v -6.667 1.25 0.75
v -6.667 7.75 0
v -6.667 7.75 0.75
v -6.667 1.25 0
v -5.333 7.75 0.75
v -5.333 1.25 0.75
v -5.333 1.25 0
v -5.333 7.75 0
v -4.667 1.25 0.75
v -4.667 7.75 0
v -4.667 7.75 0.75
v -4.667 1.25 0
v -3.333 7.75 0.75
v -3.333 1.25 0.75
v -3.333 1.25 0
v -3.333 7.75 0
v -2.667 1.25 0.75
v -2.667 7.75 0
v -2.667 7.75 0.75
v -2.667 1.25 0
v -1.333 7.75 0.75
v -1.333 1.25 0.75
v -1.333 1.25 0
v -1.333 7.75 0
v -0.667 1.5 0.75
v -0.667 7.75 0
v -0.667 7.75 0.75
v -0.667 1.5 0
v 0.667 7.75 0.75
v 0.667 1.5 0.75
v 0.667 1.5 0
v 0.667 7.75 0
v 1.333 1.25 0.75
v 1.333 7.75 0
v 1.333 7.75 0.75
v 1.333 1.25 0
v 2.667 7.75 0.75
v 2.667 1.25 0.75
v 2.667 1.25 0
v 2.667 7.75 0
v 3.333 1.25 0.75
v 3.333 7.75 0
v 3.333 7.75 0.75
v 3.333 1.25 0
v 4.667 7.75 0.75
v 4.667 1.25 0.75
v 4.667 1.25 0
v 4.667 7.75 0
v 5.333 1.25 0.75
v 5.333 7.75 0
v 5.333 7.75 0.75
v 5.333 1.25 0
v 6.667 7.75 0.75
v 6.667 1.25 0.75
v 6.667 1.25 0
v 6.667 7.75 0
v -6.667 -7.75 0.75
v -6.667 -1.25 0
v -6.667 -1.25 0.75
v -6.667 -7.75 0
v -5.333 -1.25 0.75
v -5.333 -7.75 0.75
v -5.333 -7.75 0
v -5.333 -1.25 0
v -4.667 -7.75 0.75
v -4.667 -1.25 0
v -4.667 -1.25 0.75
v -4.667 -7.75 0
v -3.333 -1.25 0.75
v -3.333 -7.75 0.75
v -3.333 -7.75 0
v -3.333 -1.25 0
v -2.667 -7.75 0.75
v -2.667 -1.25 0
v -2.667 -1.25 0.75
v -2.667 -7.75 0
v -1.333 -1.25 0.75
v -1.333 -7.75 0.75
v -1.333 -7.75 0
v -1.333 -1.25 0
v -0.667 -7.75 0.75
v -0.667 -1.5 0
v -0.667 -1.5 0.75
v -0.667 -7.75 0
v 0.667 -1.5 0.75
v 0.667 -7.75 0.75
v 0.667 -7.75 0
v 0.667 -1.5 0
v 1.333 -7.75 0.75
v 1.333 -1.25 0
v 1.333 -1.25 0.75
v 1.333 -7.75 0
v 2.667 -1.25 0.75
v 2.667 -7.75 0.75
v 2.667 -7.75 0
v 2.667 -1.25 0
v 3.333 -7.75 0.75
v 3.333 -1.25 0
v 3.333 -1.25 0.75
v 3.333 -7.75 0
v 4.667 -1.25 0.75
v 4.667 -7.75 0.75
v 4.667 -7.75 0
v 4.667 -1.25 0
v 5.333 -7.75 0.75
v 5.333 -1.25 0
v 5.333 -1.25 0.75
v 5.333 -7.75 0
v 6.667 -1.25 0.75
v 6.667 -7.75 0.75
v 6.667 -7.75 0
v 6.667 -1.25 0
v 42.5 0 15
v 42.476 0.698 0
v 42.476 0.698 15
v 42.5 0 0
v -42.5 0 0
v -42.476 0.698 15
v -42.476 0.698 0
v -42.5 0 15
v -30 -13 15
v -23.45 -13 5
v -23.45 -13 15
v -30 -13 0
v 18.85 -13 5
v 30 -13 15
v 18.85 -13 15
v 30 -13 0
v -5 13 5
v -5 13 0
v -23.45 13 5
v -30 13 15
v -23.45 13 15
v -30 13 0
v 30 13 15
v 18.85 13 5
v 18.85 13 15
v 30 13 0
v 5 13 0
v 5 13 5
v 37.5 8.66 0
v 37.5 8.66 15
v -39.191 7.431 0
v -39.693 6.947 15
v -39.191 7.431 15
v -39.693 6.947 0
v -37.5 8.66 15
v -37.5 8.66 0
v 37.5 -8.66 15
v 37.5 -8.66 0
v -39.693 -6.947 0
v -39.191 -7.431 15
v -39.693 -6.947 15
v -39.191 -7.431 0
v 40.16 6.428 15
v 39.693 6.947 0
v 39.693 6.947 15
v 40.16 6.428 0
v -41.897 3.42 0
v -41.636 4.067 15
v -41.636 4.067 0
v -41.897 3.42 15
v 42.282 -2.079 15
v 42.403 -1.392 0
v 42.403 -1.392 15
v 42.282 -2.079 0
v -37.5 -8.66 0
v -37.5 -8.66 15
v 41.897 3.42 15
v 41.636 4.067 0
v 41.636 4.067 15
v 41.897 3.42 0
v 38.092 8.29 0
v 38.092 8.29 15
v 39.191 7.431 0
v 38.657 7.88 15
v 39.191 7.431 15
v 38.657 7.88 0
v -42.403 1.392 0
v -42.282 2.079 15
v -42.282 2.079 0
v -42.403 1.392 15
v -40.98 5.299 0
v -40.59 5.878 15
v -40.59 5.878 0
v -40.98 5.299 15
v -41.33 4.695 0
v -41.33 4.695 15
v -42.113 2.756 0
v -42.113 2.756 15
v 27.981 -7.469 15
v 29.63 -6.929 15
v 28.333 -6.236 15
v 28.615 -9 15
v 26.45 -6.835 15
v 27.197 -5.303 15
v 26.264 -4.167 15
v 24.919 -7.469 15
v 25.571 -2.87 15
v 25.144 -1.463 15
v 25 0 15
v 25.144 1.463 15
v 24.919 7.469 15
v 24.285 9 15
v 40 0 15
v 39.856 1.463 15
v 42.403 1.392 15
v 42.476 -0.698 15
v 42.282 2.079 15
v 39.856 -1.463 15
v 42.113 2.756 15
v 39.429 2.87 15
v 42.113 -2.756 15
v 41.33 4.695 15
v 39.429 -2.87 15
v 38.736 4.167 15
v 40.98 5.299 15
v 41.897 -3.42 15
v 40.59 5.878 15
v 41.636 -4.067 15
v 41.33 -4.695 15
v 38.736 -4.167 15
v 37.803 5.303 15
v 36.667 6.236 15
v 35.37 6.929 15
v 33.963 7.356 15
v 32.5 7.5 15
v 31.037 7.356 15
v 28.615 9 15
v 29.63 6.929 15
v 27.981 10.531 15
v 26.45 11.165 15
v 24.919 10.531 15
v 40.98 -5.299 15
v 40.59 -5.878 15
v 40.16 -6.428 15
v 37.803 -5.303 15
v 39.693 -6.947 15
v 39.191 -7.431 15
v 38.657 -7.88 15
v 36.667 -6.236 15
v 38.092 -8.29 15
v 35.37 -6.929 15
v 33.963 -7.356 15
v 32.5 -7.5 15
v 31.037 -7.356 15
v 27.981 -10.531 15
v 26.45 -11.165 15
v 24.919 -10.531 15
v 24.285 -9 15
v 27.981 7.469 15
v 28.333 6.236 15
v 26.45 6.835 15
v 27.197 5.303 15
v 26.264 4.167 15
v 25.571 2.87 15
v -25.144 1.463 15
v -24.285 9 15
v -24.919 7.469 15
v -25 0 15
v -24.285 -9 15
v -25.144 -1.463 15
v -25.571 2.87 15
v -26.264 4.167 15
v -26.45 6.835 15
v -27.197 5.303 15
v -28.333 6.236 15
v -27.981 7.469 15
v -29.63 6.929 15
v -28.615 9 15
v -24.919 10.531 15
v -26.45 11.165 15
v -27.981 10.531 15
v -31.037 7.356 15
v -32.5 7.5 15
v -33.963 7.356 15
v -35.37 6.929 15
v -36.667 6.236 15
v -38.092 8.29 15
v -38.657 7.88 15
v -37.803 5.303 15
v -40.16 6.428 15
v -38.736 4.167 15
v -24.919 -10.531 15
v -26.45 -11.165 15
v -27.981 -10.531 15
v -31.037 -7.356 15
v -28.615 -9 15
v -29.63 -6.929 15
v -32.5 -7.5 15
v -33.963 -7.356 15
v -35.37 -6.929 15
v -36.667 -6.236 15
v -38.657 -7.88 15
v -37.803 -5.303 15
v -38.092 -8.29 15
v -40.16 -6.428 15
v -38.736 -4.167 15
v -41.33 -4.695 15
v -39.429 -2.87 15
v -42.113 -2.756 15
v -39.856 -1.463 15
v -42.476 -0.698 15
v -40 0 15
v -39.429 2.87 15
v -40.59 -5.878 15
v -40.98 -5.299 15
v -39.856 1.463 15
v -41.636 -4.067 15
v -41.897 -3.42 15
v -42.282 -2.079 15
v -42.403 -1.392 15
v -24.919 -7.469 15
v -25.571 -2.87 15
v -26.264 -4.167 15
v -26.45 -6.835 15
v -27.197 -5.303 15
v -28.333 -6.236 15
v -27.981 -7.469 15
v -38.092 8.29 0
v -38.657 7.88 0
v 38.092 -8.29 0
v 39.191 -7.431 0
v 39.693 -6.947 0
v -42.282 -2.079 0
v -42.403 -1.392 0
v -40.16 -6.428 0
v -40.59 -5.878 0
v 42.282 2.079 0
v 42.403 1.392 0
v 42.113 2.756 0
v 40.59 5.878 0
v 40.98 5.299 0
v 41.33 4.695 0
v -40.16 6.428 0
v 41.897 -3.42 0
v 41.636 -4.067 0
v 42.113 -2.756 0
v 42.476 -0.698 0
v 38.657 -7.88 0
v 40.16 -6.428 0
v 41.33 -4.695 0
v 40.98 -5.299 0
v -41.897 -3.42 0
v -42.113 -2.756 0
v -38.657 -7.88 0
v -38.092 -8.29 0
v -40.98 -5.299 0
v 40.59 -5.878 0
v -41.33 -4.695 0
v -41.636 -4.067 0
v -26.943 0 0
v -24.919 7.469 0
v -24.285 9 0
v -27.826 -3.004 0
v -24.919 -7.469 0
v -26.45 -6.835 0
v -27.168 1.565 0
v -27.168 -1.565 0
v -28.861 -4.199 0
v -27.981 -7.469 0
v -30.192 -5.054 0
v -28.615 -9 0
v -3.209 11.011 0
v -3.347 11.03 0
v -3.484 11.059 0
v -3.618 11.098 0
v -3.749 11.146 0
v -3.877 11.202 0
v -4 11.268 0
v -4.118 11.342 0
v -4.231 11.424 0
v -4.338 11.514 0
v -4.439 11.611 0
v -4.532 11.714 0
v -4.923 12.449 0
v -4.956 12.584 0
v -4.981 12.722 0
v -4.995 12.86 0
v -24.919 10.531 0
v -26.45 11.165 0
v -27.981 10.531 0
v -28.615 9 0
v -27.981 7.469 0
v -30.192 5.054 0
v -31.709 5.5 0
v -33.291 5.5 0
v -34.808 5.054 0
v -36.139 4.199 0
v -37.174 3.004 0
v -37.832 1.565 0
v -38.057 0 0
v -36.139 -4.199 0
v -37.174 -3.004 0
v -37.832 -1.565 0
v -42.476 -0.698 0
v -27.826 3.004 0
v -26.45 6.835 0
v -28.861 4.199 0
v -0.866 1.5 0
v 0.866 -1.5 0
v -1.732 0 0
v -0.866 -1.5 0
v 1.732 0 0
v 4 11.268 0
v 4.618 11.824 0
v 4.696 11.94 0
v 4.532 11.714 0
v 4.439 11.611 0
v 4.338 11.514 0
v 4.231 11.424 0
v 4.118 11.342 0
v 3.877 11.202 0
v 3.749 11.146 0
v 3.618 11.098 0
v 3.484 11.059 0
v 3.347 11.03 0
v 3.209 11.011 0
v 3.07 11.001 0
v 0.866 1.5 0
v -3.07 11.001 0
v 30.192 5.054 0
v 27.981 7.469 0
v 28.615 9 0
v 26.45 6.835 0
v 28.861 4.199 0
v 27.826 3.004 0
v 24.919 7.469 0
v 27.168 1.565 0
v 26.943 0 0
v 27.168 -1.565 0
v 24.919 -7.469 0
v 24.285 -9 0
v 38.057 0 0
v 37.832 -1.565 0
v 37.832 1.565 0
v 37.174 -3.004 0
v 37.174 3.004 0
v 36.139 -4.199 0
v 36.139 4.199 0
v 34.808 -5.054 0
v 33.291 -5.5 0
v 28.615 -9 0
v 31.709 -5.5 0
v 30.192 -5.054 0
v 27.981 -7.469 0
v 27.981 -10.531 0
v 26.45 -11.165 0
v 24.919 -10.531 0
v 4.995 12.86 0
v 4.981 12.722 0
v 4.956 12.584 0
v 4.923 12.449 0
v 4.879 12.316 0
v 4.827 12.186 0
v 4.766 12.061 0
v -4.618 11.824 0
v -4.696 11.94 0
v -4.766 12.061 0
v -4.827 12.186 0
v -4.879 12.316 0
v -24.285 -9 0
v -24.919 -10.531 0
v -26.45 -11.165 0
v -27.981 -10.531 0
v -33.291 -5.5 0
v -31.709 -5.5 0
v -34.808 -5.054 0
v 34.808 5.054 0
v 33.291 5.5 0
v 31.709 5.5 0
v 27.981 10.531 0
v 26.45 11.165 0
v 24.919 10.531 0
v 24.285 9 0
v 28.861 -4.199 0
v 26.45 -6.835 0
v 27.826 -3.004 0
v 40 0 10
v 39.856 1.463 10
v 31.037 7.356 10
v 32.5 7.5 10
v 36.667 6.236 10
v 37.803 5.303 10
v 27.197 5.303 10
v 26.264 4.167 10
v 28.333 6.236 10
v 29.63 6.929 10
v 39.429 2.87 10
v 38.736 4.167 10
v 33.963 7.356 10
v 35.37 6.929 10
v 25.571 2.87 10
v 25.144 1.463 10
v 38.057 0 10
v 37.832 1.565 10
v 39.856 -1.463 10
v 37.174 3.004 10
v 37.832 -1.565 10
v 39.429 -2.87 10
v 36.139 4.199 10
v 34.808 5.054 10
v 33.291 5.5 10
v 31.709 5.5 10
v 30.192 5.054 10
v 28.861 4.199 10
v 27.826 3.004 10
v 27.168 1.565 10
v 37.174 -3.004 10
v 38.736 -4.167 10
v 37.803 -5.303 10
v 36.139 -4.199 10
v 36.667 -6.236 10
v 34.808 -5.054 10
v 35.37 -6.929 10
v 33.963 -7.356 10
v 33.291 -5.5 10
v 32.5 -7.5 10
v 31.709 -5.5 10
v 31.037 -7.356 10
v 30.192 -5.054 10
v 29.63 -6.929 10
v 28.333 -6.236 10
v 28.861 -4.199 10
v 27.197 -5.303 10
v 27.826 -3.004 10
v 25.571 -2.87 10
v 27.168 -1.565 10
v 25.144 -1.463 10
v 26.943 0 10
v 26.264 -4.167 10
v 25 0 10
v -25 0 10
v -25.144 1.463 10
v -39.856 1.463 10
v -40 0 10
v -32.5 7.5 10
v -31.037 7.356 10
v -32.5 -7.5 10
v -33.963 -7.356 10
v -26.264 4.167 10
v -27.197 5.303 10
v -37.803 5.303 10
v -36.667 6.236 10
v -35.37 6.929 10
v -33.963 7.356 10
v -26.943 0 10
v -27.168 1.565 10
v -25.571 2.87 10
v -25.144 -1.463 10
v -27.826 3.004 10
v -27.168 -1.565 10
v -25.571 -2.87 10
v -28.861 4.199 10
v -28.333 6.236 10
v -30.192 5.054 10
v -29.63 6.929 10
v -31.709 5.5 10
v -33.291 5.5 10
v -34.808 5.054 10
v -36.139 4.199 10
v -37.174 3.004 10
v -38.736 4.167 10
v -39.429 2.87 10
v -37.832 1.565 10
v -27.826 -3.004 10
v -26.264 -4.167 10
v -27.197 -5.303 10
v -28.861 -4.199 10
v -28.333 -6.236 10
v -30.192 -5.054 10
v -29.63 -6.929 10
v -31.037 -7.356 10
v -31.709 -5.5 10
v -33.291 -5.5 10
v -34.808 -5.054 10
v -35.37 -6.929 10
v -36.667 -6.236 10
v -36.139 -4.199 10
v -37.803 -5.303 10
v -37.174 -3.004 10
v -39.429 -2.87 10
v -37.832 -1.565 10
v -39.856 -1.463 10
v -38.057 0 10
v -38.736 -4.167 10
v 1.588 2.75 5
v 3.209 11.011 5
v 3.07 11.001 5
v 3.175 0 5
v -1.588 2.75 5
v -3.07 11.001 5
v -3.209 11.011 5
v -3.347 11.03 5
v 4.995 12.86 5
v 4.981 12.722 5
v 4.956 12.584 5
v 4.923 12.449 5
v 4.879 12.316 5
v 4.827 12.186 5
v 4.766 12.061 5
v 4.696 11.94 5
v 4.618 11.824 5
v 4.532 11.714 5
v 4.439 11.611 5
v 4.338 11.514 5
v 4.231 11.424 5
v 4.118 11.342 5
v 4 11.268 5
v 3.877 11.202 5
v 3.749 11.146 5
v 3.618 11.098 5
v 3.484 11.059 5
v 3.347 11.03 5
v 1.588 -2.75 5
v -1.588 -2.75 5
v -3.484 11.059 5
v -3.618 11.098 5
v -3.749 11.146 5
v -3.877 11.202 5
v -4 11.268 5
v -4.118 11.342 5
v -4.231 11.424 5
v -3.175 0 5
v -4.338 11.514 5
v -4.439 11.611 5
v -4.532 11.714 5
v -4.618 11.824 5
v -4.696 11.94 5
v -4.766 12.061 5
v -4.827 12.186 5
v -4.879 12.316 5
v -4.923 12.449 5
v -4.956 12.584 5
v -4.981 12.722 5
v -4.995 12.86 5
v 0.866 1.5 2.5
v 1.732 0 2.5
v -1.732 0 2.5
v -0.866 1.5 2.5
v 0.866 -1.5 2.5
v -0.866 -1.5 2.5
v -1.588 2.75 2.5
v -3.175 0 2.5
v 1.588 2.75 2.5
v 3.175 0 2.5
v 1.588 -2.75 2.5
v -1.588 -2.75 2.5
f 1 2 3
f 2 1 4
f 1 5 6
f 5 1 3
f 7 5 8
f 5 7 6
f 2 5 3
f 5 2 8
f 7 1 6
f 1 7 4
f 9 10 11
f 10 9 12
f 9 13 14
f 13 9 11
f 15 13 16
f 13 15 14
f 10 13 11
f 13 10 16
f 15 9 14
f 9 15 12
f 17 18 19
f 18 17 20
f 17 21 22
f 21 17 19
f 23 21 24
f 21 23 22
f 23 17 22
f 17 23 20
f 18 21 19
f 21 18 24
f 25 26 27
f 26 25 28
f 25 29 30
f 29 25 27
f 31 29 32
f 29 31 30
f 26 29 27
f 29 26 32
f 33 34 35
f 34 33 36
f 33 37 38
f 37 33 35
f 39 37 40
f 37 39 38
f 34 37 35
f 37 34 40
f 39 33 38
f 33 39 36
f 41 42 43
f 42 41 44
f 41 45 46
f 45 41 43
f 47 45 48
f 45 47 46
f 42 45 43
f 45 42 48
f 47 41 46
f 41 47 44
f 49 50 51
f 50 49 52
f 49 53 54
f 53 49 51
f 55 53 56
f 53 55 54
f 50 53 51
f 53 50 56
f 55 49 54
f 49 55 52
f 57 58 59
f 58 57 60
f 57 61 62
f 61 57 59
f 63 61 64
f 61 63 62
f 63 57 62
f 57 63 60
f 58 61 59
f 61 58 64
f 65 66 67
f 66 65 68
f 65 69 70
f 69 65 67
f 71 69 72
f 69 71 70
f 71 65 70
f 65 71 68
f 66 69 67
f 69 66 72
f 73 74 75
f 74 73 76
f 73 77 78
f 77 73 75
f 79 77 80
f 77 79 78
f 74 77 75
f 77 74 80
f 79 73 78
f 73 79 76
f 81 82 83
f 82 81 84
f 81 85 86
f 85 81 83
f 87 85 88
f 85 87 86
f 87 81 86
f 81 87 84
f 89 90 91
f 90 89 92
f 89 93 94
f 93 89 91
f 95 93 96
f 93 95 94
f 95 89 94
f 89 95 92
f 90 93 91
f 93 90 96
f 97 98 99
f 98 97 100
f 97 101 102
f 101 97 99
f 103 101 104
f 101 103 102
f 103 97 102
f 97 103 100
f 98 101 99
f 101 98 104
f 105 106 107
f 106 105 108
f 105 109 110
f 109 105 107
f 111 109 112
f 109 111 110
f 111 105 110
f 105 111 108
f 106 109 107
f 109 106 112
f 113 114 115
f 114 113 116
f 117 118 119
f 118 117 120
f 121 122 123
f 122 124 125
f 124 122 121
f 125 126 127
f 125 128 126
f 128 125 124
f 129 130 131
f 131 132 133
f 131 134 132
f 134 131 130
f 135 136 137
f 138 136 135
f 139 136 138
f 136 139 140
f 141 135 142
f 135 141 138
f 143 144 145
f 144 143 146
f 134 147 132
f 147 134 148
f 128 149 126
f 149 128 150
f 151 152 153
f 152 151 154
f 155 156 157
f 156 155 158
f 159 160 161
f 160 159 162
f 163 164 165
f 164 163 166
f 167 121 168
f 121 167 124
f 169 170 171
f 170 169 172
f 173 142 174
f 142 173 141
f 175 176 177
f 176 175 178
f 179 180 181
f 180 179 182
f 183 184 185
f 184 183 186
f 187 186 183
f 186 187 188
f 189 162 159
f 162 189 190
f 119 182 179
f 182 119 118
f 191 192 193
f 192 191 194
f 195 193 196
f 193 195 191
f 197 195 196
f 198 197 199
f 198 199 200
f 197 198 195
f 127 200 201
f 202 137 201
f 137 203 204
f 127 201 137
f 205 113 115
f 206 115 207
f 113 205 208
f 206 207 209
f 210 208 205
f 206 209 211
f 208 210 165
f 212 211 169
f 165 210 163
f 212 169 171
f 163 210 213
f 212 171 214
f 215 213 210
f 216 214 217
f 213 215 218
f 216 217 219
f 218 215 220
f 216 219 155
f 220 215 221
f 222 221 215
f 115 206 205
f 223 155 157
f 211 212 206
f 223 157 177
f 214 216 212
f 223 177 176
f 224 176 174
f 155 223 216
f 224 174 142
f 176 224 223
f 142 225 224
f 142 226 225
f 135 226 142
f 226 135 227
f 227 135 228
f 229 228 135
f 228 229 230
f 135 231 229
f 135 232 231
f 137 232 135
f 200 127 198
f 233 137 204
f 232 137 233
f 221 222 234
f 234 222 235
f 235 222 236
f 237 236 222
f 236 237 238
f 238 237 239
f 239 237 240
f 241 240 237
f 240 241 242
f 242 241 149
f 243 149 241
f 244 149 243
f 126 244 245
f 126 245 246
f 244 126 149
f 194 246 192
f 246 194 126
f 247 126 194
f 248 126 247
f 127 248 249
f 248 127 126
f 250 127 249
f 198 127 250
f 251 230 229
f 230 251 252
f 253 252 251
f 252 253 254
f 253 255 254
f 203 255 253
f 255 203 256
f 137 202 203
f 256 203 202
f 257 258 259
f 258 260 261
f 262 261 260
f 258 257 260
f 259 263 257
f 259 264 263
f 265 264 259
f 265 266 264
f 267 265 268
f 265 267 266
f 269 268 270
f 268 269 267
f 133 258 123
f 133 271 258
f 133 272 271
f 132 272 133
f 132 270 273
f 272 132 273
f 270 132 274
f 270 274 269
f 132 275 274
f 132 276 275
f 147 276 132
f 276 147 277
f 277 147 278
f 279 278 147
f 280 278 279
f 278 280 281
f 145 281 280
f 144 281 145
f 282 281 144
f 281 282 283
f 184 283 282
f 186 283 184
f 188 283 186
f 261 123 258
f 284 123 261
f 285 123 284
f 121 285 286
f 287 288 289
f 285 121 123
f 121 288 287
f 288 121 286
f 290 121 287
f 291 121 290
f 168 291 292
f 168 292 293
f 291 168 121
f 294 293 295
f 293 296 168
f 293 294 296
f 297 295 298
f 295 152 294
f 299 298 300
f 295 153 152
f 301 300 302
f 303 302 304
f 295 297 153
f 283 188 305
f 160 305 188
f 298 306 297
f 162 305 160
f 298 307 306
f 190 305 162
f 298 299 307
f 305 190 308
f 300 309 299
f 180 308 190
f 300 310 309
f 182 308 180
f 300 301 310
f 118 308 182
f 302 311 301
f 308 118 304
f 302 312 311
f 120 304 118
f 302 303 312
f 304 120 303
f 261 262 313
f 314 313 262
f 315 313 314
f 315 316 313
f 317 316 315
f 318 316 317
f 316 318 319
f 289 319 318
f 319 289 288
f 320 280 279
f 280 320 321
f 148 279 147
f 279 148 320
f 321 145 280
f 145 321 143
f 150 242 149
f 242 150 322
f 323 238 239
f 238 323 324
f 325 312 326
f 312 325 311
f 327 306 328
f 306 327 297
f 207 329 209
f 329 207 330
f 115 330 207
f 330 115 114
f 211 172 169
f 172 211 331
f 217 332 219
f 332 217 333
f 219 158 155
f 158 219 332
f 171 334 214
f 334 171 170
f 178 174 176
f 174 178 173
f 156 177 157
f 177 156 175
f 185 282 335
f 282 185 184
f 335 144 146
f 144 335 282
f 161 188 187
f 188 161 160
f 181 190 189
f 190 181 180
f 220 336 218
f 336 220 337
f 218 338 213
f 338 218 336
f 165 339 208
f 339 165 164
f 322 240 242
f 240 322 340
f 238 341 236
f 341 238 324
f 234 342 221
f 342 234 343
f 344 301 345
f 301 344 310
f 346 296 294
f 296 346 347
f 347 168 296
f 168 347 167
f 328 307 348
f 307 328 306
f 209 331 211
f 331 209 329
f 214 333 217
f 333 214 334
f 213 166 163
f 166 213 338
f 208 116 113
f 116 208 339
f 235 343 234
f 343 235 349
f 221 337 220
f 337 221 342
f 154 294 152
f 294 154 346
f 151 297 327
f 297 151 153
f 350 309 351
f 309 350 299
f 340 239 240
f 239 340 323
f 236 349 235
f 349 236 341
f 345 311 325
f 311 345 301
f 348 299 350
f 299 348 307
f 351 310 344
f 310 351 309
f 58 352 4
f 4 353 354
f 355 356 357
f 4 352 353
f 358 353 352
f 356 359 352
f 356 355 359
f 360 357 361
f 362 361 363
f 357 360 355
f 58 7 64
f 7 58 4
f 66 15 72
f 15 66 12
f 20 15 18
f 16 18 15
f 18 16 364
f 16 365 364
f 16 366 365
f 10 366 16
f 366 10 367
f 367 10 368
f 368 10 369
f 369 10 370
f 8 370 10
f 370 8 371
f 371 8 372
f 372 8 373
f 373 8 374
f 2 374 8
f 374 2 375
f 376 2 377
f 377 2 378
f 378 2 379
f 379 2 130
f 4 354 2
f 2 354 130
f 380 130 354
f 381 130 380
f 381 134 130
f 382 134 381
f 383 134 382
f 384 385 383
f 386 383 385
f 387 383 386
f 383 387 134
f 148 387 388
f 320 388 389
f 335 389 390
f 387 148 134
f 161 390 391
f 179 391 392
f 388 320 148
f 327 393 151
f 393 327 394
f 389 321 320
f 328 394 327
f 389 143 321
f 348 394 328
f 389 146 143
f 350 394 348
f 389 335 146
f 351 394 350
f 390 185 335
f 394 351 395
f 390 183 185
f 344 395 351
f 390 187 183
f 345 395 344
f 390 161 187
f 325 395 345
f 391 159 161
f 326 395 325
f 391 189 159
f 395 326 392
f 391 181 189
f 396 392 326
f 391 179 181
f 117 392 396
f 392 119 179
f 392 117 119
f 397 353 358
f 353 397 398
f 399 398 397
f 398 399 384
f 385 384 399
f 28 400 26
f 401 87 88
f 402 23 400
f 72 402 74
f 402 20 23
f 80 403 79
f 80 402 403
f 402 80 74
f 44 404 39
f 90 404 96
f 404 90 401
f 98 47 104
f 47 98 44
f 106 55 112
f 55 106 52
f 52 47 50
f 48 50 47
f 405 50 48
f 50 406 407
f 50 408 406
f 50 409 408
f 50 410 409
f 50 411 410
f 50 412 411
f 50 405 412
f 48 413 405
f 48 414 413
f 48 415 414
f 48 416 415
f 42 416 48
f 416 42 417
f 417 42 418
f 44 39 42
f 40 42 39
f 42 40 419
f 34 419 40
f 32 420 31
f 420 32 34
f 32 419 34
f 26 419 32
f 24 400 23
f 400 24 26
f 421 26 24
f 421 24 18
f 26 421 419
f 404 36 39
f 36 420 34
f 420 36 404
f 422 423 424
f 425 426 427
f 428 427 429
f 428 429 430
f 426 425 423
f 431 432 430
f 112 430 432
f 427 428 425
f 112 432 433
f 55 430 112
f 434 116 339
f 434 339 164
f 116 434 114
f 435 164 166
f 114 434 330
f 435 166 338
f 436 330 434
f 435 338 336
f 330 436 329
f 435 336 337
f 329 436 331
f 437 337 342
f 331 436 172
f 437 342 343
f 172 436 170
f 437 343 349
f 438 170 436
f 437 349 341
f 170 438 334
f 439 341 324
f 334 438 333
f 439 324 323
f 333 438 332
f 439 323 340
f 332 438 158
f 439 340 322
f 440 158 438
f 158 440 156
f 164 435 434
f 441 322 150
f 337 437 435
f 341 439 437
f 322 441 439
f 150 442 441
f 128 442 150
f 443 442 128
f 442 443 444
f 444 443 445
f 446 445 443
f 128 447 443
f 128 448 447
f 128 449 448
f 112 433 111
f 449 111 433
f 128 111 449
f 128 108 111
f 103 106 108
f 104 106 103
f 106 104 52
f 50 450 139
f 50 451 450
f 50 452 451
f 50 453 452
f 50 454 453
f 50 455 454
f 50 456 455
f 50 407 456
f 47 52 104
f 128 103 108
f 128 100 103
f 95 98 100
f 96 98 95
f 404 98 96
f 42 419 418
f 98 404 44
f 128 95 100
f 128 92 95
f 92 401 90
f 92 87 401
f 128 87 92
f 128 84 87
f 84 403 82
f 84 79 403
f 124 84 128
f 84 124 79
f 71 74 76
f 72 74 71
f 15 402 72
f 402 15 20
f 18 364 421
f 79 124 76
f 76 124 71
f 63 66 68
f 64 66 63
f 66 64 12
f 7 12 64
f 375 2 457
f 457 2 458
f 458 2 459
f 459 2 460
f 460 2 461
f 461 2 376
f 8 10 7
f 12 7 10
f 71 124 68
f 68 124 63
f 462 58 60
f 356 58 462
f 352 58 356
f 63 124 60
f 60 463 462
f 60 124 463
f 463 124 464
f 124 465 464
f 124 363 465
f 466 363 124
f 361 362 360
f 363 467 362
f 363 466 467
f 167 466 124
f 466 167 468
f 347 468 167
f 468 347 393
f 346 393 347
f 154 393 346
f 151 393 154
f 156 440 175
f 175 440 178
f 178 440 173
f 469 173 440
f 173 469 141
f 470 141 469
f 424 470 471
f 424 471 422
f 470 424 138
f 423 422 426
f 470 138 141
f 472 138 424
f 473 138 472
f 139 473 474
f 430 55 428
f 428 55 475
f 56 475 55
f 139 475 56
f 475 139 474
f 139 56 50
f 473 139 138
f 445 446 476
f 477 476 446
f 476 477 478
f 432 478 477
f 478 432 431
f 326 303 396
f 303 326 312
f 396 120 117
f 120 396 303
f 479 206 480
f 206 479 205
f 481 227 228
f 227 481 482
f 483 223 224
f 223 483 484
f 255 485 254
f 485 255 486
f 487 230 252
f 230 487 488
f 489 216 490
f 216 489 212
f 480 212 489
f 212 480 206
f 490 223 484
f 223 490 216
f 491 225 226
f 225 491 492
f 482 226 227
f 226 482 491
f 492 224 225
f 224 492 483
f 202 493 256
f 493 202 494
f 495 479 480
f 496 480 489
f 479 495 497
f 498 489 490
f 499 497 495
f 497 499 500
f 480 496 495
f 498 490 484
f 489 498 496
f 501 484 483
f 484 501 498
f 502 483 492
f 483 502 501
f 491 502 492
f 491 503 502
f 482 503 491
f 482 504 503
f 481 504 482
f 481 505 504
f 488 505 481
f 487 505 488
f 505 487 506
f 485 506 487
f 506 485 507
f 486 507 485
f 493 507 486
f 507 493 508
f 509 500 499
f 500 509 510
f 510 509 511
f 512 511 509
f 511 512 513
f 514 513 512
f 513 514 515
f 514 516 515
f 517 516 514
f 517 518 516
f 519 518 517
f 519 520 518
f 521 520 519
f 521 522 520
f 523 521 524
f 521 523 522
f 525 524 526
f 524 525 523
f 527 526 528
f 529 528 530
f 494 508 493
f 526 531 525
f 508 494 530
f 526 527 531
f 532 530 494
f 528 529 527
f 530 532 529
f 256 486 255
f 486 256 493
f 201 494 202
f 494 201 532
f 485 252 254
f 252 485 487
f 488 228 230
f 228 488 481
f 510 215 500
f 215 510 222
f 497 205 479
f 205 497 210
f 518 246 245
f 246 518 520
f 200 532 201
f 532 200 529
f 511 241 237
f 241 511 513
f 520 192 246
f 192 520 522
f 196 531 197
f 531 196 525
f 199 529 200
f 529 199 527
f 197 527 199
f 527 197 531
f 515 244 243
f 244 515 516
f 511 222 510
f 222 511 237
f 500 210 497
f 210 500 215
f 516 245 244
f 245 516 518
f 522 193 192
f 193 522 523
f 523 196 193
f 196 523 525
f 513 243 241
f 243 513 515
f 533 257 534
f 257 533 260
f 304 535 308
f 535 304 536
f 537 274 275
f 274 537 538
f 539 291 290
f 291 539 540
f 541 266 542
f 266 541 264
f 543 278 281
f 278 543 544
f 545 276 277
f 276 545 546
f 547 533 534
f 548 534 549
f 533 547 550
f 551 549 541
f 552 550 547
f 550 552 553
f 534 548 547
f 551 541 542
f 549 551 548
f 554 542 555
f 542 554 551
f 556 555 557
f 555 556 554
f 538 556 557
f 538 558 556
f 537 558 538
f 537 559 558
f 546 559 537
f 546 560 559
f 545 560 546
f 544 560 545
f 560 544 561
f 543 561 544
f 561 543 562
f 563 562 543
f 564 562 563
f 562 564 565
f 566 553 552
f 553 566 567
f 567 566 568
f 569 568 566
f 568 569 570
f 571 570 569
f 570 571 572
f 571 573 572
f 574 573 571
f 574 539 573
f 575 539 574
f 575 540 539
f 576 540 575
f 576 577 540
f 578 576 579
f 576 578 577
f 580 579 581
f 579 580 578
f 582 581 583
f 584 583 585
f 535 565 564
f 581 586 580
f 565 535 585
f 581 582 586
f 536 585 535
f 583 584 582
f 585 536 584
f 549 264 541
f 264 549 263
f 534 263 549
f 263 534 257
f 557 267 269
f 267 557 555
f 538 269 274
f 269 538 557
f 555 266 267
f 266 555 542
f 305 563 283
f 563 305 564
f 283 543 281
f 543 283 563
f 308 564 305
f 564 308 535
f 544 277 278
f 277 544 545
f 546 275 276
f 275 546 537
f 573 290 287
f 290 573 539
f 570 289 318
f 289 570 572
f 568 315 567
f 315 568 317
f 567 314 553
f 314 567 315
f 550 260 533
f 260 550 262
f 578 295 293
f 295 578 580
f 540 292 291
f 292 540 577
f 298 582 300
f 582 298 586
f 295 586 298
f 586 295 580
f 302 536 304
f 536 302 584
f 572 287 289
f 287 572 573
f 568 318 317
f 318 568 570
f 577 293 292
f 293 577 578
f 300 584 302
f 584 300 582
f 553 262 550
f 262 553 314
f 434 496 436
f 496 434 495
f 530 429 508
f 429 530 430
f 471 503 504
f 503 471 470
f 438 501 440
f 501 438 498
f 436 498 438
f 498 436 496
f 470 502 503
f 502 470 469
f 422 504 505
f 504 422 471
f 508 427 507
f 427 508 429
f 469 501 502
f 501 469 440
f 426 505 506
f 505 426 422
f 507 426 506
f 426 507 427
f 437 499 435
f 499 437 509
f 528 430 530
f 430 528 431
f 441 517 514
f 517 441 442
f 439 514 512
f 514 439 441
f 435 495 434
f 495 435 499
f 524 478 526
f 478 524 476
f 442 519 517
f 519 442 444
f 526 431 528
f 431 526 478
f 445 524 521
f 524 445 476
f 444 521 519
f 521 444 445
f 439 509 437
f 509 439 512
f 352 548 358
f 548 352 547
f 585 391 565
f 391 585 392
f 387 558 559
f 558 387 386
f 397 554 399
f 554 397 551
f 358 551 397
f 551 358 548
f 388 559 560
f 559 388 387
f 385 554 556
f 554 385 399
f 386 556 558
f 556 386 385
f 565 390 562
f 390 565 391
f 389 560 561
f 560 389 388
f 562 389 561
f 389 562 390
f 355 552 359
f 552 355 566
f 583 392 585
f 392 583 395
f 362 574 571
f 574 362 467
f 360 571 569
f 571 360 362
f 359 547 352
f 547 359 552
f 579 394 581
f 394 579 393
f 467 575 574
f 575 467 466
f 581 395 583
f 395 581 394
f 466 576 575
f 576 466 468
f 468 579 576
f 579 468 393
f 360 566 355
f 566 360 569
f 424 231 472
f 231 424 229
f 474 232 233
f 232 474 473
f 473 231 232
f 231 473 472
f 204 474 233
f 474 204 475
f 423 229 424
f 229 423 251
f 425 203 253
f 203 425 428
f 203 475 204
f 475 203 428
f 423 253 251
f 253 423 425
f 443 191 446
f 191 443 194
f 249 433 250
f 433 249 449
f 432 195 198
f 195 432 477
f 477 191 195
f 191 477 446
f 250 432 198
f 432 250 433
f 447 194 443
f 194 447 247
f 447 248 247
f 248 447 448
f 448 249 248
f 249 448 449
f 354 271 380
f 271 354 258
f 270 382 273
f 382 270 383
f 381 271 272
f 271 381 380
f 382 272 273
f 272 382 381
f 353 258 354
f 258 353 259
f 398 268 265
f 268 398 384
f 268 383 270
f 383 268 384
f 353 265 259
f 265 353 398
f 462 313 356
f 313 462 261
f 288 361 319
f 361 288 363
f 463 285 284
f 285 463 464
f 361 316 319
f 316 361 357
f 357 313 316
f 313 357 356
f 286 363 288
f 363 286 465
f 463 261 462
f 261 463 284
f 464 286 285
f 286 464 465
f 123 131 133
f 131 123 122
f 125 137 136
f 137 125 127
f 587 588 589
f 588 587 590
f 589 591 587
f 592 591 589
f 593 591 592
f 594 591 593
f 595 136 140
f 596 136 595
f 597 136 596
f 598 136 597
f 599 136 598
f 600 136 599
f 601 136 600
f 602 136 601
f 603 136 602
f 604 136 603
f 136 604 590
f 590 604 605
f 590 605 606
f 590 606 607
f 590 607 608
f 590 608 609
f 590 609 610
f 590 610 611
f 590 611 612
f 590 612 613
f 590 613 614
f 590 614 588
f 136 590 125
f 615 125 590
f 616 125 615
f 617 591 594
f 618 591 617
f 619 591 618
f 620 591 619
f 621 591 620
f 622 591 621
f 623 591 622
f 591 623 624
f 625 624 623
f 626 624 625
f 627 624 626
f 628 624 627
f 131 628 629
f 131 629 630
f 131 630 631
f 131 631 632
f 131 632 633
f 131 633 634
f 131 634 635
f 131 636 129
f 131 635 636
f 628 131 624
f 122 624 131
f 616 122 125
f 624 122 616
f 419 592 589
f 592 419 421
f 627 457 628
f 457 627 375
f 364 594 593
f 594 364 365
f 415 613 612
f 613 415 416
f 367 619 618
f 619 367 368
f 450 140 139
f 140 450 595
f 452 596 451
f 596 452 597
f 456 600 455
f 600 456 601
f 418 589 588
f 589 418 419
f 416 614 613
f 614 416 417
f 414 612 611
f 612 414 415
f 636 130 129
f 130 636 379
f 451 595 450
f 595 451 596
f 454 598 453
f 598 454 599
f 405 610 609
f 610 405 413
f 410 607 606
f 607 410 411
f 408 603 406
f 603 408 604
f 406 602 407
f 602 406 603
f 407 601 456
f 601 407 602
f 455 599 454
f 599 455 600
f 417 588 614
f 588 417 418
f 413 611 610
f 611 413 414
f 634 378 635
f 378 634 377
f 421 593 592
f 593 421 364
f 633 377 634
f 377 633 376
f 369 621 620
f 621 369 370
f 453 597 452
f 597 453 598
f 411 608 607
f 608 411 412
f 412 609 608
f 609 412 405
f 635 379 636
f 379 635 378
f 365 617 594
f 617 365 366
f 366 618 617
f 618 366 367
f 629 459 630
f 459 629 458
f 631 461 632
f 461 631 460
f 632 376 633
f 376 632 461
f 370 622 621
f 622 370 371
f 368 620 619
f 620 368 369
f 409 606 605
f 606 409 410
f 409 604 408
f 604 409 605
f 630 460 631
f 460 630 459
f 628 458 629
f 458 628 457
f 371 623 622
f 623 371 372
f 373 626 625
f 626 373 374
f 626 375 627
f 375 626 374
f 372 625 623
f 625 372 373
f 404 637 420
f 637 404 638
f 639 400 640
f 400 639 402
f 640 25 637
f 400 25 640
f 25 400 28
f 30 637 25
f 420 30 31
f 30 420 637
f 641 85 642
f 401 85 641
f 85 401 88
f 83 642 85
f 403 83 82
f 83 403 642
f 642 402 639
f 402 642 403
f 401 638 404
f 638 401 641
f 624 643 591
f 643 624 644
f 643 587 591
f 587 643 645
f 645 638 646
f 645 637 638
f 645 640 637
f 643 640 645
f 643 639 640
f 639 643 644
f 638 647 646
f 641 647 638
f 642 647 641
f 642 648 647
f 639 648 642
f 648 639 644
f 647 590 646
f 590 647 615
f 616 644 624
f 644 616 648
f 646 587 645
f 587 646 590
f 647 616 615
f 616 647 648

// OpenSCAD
// file: ../../nutShape.scad
// a nut shape that takes height and width across flats as input.

nutShape(6, 3);

module nutShape(w, h)
{
    rotate_extrude($fn = 6)
        square([((w / 2) / (cos(30))), h], center = false);
}
// file: ../../polyhole.scad
// The Cylinder is dead! Long live the Cylinder!
// A module for a polyhole by radius, based on Nophead's work.

module polyhole(h, r, cent = false)
{
    n = max(round(4 * r), 3);
    cylinder(h = h, r = r / cos(180 / n), $fn = n, center = cent);
}
// main file
use<../../polyhole.scad>
use<../../nutShape.scad>

CarriageEnd();

module CarriageEnd()
{
    difference()
    {
        union()
        {
            hull()
            {
                translate([65/2, 0, 0])
                    cylinder(h = 5+5+5, r = (15+5)/2, $fn = 90);
                translate([-65/2, 0, 0])
                    cylinder(h = 5+5+5, r = (15+5)/2, $fn = 90);
                translate([0, 0, (5+5+5)/2])
                    cube([60, 20+6, 5+5+5], center = true);
            }
        }
        translate([65/2, 0, 5+5])
            cylinder(h = 5+5, r = 15/2, $fn = 32);
        translate([-65/2, 0, 5+5])
            cylinder(h = 5+5, r = 15/2, $fn = 32);
        translate([65/2, 0, 0])
            polyhole(5+5+5, 5.5);
        translate([-65/2, 0, 0])
            polyhole(5+5+5, 5.5);
        translate([(42.3+4.6)/2+3, 9, 0])
            polyhole(5+5+5, 2);
        translate([(42.3+4.6)/2+3, -9, 0])
            polyhole(5+5+5, 2);
        translate([-(42.3+4.6)/2-3, 9, 0])
            polyhole(5+5+5, 2);
        translate([-(42.3+4.6)/2-3, -9, 0])
            polyhole(5+5+5, 2);
        translate([-4.6/2, 42.3/2-13, 5+(25+2+28)/2])
            cube([42.3, 42.3, 25+2+28], center = true);
        hull()
        {
            translate([3, (20+6)/2, 0])
                cylinder(h = 5, r = 2, $fn = 90);
            translate([-3, (20+6)/2, 0])
                cylinder(h = 5, r = 2, $fn = 90);
        }
        polyhole(5, 1.5);
        translate([0, 0, 5-2.5])
            nutShape(5.5, 2.5);
        for(i = [-6 : 2 : 6])
            translate([i, 4.5, 0])
                cube([4/3, 6.5, 2*0.75], center = true);
        for(i = [-6 : 2 : 6])
            translate([i, -4.5, 0])
                cube([4/3, 6.5, 2*0.75], center = true);
    }
}
